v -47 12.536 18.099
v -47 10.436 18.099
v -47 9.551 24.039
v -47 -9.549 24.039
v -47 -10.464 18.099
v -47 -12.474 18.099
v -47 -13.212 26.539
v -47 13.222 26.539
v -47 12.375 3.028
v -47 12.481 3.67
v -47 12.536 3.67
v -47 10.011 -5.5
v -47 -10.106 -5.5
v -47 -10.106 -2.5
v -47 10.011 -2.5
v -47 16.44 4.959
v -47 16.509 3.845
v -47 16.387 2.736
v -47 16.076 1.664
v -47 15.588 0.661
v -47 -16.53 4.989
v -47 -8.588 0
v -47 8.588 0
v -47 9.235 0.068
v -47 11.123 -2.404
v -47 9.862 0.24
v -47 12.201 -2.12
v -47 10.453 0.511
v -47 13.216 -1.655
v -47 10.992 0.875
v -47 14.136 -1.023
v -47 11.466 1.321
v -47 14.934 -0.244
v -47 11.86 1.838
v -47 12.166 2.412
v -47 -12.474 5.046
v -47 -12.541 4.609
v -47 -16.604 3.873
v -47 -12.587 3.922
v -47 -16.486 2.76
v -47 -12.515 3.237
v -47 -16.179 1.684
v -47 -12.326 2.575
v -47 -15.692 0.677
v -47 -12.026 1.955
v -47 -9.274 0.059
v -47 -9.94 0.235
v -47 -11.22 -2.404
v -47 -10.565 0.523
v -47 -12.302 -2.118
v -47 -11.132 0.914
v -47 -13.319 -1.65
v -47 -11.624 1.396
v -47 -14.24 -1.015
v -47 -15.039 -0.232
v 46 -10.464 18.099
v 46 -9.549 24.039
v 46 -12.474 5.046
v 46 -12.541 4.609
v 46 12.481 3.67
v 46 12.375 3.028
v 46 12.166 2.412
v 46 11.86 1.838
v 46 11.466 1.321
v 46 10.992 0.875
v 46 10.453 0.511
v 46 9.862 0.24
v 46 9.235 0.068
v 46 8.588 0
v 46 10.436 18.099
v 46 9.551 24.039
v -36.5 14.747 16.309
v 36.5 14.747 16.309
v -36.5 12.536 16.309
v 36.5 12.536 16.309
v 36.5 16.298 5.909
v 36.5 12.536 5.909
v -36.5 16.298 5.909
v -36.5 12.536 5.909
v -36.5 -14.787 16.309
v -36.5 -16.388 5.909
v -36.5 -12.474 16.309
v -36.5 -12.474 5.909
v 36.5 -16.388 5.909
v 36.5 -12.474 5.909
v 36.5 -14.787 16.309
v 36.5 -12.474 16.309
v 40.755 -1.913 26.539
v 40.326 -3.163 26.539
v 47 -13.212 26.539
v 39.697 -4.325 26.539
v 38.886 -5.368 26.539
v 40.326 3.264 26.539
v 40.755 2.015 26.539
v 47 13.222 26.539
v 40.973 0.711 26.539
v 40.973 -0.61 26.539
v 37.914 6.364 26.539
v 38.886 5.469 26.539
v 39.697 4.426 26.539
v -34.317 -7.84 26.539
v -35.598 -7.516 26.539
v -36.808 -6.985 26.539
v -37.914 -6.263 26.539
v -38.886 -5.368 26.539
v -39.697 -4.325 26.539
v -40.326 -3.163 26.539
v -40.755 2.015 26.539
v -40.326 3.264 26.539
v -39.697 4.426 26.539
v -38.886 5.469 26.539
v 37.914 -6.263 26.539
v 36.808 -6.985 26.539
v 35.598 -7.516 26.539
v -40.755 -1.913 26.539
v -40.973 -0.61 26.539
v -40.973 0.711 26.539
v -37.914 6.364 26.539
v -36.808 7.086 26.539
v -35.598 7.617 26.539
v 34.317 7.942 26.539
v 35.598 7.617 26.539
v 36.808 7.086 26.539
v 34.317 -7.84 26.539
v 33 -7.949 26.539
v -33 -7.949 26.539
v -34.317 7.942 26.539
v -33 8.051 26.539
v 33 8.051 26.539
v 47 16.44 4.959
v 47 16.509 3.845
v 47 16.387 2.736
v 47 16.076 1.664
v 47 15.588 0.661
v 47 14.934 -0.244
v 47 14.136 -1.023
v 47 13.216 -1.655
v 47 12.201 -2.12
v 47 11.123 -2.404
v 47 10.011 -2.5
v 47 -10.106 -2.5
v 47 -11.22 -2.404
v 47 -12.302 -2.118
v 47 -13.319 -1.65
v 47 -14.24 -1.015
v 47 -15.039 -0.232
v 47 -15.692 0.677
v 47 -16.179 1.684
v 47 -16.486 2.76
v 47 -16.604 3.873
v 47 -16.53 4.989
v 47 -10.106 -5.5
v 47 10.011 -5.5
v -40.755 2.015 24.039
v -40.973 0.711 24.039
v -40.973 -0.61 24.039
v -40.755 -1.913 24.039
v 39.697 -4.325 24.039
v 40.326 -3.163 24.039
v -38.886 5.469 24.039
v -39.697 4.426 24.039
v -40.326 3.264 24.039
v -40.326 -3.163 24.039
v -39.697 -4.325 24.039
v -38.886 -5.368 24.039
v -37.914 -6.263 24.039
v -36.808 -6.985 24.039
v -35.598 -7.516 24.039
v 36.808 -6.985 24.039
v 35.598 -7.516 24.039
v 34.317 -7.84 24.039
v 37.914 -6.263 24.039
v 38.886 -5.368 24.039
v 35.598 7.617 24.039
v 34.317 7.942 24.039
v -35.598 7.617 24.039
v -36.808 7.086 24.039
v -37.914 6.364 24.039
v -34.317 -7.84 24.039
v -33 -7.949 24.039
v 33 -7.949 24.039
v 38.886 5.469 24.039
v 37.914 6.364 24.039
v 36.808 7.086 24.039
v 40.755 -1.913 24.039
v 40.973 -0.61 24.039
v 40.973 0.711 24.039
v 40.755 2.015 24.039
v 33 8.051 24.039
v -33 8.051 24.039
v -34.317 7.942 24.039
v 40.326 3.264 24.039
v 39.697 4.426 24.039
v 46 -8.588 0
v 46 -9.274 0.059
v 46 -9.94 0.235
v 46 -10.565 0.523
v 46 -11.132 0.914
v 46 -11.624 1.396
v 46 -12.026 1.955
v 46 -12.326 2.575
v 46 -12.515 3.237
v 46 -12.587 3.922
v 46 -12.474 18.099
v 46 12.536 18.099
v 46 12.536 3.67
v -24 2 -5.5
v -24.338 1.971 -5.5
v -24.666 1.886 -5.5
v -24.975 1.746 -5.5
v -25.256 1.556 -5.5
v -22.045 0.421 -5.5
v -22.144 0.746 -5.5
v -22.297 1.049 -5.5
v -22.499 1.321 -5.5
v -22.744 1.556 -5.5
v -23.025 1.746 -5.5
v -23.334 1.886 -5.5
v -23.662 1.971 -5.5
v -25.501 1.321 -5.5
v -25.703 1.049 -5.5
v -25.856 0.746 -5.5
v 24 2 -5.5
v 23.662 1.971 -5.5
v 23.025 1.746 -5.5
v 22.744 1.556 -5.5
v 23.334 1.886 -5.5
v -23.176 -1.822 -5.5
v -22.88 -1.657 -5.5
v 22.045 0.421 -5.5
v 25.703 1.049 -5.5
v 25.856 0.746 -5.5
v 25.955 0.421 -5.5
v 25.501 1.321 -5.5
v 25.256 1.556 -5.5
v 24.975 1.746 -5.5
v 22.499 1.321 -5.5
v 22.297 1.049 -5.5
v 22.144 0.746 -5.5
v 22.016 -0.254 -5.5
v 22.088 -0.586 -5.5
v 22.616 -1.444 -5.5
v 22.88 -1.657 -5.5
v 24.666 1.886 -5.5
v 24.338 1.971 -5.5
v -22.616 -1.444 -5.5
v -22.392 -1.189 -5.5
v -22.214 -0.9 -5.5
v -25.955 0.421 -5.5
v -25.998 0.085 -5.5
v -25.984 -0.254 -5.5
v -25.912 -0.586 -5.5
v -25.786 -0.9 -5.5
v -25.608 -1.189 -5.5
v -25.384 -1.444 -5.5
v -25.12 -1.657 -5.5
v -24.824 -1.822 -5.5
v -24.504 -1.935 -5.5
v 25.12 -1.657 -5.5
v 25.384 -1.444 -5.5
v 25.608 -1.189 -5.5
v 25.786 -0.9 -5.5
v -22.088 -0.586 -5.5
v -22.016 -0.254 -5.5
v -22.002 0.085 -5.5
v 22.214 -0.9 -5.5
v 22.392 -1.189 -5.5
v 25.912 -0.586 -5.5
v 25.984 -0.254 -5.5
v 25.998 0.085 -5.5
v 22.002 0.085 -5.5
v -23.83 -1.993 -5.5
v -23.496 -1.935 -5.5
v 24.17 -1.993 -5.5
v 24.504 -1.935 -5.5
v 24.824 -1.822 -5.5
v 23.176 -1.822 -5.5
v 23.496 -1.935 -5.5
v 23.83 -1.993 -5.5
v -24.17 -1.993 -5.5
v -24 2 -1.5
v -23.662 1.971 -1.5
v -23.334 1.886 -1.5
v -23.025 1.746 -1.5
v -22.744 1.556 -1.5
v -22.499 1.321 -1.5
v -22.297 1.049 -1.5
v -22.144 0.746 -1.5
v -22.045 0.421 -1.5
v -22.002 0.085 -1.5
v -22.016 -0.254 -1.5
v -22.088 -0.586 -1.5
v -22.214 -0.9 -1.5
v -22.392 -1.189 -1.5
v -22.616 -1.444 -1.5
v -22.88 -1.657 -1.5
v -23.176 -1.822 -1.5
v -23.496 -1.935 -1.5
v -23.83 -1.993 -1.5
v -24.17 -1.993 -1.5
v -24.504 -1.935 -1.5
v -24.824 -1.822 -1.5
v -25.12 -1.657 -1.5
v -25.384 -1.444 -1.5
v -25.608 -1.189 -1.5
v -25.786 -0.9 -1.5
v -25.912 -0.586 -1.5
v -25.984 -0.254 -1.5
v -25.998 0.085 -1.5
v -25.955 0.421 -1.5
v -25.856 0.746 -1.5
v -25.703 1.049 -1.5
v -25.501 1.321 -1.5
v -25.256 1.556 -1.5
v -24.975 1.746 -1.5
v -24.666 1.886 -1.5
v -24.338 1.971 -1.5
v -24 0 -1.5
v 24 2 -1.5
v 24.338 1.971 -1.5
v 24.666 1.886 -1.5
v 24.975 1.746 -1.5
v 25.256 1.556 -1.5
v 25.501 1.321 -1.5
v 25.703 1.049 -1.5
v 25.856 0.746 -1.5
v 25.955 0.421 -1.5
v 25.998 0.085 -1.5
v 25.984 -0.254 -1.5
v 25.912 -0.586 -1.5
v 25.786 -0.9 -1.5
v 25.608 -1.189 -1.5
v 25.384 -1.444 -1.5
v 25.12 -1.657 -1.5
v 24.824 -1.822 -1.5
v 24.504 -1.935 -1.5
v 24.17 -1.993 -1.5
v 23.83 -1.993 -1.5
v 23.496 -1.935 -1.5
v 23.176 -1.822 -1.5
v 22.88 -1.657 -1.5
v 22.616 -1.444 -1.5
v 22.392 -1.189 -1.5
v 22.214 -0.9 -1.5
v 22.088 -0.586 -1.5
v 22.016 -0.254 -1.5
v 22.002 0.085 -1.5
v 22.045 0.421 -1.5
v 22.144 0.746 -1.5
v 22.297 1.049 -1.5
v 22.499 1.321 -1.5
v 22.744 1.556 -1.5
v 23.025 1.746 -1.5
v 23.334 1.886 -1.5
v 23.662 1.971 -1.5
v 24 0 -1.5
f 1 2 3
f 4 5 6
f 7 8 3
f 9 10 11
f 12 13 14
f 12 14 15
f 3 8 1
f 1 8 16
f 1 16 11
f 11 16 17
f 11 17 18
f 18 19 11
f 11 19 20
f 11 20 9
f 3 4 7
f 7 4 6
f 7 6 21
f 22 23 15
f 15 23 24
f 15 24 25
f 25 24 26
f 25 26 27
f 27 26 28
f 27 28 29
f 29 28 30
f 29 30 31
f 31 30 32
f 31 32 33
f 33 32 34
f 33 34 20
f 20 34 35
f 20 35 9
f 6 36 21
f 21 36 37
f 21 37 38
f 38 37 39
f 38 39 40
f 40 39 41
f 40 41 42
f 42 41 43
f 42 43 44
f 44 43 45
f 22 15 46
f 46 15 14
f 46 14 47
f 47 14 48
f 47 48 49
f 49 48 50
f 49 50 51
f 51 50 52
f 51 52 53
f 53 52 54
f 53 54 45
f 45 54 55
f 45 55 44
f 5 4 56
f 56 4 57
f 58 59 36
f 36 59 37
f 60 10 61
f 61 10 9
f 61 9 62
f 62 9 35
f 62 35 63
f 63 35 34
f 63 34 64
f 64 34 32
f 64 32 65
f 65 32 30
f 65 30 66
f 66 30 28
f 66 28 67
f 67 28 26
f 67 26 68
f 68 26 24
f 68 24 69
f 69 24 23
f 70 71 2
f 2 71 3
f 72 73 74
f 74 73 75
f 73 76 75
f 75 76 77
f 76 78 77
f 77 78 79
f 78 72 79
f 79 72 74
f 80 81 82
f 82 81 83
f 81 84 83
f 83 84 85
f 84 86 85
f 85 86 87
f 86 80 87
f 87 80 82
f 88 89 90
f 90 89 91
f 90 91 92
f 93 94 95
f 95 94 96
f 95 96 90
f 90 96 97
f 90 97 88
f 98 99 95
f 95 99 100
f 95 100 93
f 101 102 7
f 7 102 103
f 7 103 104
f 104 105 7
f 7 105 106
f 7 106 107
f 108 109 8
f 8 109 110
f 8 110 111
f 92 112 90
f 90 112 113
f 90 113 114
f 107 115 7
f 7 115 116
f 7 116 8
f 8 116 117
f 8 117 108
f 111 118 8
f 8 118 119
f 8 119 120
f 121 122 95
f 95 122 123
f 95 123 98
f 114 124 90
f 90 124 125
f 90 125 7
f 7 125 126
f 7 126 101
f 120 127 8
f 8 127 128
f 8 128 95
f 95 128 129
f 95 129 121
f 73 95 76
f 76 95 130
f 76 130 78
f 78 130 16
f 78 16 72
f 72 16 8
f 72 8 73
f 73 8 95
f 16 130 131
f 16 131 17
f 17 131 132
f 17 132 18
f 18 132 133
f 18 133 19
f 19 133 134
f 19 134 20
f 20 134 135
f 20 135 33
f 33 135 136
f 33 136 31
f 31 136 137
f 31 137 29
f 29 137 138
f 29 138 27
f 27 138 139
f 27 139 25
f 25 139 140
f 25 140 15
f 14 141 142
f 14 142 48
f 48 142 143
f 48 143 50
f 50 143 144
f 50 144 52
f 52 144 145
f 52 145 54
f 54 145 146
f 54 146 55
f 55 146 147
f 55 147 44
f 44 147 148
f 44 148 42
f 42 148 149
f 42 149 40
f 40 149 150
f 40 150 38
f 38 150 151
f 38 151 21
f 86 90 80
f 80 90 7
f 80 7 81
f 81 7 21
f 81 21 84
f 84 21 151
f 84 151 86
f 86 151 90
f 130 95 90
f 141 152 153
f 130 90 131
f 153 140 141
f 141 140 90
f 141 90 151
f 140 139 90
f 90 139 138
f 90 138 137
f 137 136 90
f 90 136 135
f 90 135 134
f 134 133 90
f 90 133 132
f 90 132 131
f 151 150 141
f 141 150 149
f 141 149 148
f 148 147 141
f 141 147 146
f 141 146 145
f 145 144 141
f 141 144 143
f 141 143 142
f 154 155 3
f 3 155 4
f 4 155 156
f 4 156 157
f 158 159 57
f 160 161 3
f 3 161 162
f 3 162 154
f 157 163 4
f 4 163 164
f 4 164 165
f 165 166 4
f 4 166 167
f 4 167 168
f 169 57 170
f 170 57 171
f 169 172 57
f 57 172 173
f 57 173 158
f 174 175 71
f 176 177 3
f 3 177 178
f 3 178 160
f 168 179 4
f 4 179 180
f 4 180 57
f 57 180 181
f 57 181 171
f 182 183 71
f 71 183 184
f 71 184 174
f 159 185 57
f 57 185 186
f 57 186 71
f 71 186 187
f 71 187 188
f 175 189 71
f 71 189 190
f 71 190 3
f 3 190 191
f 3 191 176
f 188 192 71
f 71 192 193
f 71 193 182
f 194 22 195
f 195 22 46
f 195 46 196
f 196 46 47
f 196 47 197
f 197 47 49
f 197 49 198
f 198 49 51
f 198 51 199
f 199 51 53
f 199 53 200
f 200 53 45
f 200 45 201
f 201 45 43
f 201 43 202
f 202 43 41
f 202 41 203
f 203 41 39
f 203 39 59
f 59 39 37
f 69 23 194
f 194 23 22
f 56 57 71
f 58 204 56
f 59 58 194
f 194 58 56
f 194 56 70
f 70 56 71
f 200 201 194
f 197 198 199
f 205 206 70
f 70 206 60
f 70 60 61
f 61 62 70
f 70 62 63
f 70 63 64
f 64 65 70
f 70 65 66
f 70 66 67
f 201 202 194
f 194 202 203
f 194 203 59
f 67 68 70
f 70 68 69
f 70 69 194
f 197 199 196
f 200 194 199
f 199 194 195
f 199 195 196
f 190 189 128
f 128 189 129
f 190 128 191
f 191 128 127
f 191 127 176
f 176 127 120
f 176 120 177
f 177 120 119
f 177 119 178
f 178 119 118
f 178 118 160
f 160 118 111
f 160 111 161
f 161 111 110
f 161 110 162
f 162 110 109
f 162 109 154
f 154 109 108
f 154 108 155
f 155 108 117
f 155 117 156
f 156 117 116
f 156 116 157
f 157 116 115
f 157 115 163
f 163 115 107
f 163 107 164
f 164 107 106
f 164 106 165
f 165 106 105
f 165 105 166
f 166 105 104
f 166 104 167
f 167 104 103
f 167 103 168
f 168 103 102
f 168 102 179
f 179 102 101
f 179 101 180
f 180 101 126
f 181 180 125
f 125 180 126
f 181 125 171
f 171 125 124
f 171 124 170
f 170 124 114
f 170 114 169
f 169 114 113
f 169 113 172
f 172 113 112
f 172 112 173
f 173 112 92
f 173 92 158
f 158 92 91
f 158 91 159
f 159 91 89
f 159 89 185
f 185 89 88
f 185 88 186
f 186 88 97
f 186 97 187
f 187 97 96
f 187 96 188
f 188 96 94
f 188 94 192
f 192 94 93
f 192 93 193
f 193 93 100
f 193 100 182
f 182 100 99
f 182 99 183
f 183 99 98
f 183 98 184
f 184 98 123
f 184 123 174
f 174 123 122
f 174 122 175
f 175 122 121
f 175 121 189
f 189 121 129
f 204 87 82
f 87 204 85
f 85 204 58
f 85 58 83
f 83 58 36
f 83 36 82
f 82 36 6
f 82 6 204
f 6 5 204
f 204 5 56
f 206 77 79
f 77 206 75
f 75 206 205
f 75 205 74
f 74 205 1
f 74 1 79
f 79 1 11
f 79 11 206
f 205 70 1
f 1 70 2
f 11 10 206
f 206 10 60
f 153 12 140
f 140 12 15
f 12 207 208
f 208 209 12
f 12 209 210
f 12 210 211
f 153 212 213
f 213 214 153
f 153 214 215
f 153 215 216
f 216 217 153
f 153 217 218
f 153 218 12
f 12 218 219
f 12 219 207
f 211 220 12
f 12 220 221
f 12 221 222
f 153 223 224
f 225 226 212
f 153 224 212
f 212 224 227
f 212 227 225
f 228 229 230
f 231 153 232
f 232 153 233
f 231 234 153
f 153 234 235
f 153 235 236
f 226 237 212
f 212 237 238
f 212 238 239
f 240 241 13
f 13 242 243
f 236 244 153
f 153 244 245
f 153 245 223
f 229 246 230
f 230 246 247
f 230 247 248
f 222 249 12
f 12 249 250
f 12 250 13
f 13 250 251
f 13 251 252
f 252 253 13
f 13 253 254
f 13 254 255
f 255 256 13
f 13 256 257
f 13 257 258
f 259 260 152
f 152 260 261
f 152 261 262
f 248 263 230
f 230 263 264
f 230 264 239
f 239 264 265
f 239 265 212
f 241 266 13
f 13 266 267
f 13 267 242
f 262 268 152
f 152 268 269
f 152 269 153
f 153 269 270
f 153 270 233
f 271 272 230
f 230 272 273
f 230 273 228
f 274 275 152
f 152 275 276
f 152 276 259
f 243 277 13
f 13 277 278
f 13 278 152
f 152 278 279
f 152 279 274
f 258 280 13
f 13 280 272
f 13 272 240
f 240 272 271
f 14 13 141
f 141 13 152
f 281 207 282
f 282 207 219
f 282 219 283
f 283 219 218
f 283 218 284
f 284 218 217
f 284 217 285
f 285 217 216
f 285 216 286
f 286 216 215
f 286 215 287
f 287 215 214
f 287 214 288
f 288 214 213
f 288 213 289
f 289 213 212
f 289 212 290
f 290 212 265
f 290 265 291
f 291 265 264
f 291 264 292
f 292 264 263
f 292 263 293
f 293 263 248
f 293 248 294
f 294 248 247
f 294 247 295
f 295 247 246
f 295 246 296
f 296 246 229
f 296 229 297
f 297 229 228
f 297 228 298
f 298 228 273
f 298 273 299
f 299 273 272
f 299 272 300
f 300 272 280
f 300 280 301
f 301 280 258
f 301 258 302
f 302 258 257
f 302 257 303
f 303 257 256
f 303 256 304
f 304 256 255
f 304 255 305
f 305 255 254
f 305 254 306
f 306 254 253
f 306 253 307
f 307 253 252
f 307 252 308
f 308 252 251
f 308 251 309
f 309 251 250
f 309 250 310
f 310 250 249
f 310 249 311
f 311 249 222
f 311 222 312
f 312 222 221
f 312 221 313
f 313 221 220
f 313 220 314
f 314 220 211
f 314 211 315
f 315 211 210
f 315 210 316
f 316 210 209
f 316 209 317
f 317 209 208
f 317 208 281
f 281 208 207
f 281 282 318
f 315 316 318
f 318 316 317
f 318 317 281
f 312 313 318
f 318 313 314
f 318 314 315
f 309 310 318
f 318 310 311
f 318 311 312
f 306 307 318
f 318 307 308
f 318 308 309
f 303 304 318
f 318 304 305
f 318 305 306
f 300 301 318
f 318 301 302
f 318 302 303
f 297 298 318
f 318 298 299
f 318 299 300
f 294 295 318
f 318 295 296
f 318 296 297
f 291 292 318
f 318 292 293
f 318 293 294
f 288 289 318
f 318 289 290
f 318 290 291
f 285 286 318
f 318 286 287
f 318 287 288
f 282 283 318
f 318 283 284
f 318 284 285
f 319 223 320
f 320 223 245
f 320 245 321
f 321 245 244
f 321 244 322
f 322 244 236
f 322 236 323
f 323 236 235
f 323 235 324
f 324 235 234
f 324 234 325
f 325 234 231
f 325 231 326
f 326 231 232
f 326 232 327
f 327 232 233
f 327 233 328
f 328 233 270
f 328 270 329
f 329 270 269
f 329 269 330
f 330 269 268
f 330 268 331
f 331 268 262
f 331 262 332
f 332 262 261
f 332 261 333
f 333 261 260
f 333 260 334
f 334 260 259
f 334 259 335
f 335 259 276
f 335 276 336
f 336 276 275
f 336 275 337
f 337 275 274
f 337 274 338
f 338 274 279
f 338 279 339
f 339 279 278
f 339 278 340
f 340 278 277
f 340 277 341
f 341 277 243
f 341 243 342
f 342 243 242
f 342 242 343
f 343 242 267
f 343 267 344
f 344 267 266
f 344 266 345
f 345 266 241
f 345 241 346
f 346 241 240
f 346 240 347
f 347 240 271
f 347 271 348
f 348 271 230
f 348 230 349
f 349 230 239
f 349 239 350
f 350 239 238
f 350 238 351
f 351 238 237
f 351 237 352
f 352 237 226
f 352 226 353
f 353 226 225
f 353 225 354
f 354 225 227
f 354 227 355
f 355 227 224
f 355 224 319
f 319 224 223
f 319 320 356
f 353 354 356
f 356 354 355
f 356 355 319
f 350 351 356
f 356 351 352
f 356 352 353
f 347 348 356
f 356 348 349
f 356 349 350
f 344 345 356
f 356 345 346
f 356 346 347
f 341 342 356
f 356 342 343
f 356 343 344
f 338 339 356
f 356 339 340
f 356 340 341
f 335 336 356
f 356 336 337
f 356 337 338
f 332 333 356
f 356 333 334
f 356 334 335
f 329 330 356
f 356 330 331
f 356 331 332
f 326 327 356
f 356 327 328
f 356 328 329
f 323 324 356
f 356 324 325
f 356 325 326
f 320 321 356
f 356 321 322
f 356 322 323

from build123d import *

# Parameters (mm, degrees)
BOSS_EXTRUDE4_DEPTH      = 47
BOSS_EXTRUDE4_DEPTH_BACK = 47
CUT_EXTRUDE1_DEPTH       = 46
CUT_EXTRUDE1_DEPTH_BACK  = 57.471725617
CUT_EXTRUDE2_DEPTH       = 58.688817922
CUT_EXTRUDE2_DEPTH_BACK  = 2.5
CUT_EXTRUDE3_DEPTH       = 57.471725617
CUT_EXTRUDE3_DEPTH_BACK  = 57.471725617
SKETCH22_W               = 73
SKETCH22_H               = 10.4
CUT_EXTRUDE6_DEPTH       = 93
BOSS_EXTRUDE5_START      = -47
SKETCH27_W               = 3
SKETCH27_H               = 20.116454501
BOSS_EXTRUDE5_DEPTH      = 94
SKETCH28_R               = 2
CUT_EXTRUDE7_DEPTH       = 4


with BuildPart() as part:
    # Sketch20 → Boss-Extrude4 (new, two sides: drawn at the far end of the back side and taken through both)
    with BuildSketch(Plane(origin=(0, 0, 0), x_dir=(0, 0, -1), z_dir=(1, 0, 0)).offset(-BOSS_EXTRUDE4_DEPTH_BACK)):
        with BuildLine():
            Line((-26.538783814, 13.222085074), (-26.538783814, -13.211554854))
            Line((-26.538783814, -13.211554854), (-4.989273697, -16.529961404))
            ThreePointArc((-4.989273697, -16.529961404), (0.232004311, -15.039256896), (2.5, -10.105684203))
            Line((2.5, -10.105684203), (2.5, 10.010770298))
            ThreePointArc((2.5, 10.010770298), (0.243783068, 14.93421475), (-4.958555469, 16.439702667))
            Line((-4.958555469, 16.439702667), (-26.538783814, 13.222085074))
        make_face()
    extrude(amount=BOSS_EXTRUDE4_DEPTH + BOSS_EXTRUDE4_DEPTH_BACK)

    # Sketch19 → Cut-Extrude1 (cut, two sides: drawn at the far end of the back side and taken through both)
    with BuildSketch(Plane(origin=(0, 0, 0), x_dir=(0, 0, -1), z_dir=(1, 0, 0)).offset(-CUT_EXTRUDE1_DEPTH_BACK)):
        with BuildLine():
            Line((-24.038783814, 9.55061834), (-4.588783814, 12.45061834))
            ThreePointArc((-4.588783814, 12.45061834), (-1.422994415, 11.554530734), (0, 8.58800374))
            Line((0, 8.58800374), (0, -8.58800374))
            ThreePointArc((0, -8.58800374), (-1.395689655, -11.624048474), (-4.608783814, -12.541405094))
            Line((-4.608783814, -12.541405094), (-24.038783814, -9.54938166))
            Line((-24.038783814, -9.54938166), (-24.038783814, 9.55061834))
        make_face()
    extrude(amount=CUT_EXTRUDE1_DEPTH + CUT_EXTRUDE1_DEPTH_BACK, mode=Mode.SUBTRACT)

    # Sketch21 → Cut-Extrude2 (cut, two sides: drawn at the far end of the back side and taken through both)
    with BuildSketch(Plane.XY.offset(26.538783814).offset(-CUT_EXTRUDE2_DEPTH_BACK)):
        with BuildLine():
            Line((-32.999961179, 8.05061834), (33.000038821, 8.05061834))
            ThreePointArc((33.000038821, 8.05061834), (41.000038821, 0.05061834), (33.000038821, -7.94938166))
            Line((33.000038821, -7.94938166), (-32.999961179, -7.94938166))
            ThreePointArc((-32.999961179, -7.94938166), (-40.999961179, 0.05061834), (-32.999961179, 8.05061834))
        make_face()
    extrude(amount=CUT_EXTRUDE2_DEPTH + CUT_EXTRUDE2_DEPTH_BACK, mode=Mode.SUBTRACT)

    # Sketch22 → Cut-Extrude3 (cut, two sides: drawn at the far end of the back side and taken through both)
    with BuildSketch(Plane(origin=(0, 0, 0), x_dir=(1, 0, 0), z_dir=(0, 1, 0)).offset(-CUT_EXTRUDE3_DEPTH_BACK)):
        with Locations((0, -11.108783814)):
            Rectangle(SKETCH22_W, SKETCH22_H)
    extrude(amount=CUT_EXTRUDE3_DEPTH + CUT_EXTRUDE3_DEPTH_BACK, mode=Mode.SUBTRACT)

    # Sketch26 → Cut-Extrude6 (cut)
    with BuildSketch(Plane.ZY.offset(-46)):
        Polygon((18.098783814, -10.464081567), (18.098783814, -12.474081567), (3.628783814, -12.474081567), (3.66965086, 12.536273867), (18.098783814, 12.536273867), (18.098783814, 10.436273867), align=None)
    extrude(amount=CUT_EXTRUDE6_DEPTH, mode=Mode.SUBTRACT)

    # Sketch27 → Boss-Extrude5 (add)
    with BuildSketch(Plane(origin=(0, 0, 0), x_dir=(0, 0, -1), z_dir=(1, 0, 0)).offset(BOSS_EXTRUDE5_START)):
        with Locations((4, -0.047456953)):
            Rectangle(SKETCH27_W, SKETCH27_H)
    extrude(amount=BOSS_EXTRUDE5_DEPTH)

    # Sketch28 → Cut-Extrude7 (cut)
    with BuildSketch(Plane(origin=(0, 0, -5.5), x_dir=(-1, 0, 0), z_dir=(0, 0, -1))):
        with Locations(Location((-24, 0, 0), (0, 0, 90))):
            Circle(SKETCH28_R)
        with Locations(Location((24, 0, 0), (0, 0, 90))):
            Circle(SKETCH28_R)
    extrude(amount=-CUT_EXTRUDE7_DEPTH, mode=Mode.SUBTRACT)


solid = part.part
